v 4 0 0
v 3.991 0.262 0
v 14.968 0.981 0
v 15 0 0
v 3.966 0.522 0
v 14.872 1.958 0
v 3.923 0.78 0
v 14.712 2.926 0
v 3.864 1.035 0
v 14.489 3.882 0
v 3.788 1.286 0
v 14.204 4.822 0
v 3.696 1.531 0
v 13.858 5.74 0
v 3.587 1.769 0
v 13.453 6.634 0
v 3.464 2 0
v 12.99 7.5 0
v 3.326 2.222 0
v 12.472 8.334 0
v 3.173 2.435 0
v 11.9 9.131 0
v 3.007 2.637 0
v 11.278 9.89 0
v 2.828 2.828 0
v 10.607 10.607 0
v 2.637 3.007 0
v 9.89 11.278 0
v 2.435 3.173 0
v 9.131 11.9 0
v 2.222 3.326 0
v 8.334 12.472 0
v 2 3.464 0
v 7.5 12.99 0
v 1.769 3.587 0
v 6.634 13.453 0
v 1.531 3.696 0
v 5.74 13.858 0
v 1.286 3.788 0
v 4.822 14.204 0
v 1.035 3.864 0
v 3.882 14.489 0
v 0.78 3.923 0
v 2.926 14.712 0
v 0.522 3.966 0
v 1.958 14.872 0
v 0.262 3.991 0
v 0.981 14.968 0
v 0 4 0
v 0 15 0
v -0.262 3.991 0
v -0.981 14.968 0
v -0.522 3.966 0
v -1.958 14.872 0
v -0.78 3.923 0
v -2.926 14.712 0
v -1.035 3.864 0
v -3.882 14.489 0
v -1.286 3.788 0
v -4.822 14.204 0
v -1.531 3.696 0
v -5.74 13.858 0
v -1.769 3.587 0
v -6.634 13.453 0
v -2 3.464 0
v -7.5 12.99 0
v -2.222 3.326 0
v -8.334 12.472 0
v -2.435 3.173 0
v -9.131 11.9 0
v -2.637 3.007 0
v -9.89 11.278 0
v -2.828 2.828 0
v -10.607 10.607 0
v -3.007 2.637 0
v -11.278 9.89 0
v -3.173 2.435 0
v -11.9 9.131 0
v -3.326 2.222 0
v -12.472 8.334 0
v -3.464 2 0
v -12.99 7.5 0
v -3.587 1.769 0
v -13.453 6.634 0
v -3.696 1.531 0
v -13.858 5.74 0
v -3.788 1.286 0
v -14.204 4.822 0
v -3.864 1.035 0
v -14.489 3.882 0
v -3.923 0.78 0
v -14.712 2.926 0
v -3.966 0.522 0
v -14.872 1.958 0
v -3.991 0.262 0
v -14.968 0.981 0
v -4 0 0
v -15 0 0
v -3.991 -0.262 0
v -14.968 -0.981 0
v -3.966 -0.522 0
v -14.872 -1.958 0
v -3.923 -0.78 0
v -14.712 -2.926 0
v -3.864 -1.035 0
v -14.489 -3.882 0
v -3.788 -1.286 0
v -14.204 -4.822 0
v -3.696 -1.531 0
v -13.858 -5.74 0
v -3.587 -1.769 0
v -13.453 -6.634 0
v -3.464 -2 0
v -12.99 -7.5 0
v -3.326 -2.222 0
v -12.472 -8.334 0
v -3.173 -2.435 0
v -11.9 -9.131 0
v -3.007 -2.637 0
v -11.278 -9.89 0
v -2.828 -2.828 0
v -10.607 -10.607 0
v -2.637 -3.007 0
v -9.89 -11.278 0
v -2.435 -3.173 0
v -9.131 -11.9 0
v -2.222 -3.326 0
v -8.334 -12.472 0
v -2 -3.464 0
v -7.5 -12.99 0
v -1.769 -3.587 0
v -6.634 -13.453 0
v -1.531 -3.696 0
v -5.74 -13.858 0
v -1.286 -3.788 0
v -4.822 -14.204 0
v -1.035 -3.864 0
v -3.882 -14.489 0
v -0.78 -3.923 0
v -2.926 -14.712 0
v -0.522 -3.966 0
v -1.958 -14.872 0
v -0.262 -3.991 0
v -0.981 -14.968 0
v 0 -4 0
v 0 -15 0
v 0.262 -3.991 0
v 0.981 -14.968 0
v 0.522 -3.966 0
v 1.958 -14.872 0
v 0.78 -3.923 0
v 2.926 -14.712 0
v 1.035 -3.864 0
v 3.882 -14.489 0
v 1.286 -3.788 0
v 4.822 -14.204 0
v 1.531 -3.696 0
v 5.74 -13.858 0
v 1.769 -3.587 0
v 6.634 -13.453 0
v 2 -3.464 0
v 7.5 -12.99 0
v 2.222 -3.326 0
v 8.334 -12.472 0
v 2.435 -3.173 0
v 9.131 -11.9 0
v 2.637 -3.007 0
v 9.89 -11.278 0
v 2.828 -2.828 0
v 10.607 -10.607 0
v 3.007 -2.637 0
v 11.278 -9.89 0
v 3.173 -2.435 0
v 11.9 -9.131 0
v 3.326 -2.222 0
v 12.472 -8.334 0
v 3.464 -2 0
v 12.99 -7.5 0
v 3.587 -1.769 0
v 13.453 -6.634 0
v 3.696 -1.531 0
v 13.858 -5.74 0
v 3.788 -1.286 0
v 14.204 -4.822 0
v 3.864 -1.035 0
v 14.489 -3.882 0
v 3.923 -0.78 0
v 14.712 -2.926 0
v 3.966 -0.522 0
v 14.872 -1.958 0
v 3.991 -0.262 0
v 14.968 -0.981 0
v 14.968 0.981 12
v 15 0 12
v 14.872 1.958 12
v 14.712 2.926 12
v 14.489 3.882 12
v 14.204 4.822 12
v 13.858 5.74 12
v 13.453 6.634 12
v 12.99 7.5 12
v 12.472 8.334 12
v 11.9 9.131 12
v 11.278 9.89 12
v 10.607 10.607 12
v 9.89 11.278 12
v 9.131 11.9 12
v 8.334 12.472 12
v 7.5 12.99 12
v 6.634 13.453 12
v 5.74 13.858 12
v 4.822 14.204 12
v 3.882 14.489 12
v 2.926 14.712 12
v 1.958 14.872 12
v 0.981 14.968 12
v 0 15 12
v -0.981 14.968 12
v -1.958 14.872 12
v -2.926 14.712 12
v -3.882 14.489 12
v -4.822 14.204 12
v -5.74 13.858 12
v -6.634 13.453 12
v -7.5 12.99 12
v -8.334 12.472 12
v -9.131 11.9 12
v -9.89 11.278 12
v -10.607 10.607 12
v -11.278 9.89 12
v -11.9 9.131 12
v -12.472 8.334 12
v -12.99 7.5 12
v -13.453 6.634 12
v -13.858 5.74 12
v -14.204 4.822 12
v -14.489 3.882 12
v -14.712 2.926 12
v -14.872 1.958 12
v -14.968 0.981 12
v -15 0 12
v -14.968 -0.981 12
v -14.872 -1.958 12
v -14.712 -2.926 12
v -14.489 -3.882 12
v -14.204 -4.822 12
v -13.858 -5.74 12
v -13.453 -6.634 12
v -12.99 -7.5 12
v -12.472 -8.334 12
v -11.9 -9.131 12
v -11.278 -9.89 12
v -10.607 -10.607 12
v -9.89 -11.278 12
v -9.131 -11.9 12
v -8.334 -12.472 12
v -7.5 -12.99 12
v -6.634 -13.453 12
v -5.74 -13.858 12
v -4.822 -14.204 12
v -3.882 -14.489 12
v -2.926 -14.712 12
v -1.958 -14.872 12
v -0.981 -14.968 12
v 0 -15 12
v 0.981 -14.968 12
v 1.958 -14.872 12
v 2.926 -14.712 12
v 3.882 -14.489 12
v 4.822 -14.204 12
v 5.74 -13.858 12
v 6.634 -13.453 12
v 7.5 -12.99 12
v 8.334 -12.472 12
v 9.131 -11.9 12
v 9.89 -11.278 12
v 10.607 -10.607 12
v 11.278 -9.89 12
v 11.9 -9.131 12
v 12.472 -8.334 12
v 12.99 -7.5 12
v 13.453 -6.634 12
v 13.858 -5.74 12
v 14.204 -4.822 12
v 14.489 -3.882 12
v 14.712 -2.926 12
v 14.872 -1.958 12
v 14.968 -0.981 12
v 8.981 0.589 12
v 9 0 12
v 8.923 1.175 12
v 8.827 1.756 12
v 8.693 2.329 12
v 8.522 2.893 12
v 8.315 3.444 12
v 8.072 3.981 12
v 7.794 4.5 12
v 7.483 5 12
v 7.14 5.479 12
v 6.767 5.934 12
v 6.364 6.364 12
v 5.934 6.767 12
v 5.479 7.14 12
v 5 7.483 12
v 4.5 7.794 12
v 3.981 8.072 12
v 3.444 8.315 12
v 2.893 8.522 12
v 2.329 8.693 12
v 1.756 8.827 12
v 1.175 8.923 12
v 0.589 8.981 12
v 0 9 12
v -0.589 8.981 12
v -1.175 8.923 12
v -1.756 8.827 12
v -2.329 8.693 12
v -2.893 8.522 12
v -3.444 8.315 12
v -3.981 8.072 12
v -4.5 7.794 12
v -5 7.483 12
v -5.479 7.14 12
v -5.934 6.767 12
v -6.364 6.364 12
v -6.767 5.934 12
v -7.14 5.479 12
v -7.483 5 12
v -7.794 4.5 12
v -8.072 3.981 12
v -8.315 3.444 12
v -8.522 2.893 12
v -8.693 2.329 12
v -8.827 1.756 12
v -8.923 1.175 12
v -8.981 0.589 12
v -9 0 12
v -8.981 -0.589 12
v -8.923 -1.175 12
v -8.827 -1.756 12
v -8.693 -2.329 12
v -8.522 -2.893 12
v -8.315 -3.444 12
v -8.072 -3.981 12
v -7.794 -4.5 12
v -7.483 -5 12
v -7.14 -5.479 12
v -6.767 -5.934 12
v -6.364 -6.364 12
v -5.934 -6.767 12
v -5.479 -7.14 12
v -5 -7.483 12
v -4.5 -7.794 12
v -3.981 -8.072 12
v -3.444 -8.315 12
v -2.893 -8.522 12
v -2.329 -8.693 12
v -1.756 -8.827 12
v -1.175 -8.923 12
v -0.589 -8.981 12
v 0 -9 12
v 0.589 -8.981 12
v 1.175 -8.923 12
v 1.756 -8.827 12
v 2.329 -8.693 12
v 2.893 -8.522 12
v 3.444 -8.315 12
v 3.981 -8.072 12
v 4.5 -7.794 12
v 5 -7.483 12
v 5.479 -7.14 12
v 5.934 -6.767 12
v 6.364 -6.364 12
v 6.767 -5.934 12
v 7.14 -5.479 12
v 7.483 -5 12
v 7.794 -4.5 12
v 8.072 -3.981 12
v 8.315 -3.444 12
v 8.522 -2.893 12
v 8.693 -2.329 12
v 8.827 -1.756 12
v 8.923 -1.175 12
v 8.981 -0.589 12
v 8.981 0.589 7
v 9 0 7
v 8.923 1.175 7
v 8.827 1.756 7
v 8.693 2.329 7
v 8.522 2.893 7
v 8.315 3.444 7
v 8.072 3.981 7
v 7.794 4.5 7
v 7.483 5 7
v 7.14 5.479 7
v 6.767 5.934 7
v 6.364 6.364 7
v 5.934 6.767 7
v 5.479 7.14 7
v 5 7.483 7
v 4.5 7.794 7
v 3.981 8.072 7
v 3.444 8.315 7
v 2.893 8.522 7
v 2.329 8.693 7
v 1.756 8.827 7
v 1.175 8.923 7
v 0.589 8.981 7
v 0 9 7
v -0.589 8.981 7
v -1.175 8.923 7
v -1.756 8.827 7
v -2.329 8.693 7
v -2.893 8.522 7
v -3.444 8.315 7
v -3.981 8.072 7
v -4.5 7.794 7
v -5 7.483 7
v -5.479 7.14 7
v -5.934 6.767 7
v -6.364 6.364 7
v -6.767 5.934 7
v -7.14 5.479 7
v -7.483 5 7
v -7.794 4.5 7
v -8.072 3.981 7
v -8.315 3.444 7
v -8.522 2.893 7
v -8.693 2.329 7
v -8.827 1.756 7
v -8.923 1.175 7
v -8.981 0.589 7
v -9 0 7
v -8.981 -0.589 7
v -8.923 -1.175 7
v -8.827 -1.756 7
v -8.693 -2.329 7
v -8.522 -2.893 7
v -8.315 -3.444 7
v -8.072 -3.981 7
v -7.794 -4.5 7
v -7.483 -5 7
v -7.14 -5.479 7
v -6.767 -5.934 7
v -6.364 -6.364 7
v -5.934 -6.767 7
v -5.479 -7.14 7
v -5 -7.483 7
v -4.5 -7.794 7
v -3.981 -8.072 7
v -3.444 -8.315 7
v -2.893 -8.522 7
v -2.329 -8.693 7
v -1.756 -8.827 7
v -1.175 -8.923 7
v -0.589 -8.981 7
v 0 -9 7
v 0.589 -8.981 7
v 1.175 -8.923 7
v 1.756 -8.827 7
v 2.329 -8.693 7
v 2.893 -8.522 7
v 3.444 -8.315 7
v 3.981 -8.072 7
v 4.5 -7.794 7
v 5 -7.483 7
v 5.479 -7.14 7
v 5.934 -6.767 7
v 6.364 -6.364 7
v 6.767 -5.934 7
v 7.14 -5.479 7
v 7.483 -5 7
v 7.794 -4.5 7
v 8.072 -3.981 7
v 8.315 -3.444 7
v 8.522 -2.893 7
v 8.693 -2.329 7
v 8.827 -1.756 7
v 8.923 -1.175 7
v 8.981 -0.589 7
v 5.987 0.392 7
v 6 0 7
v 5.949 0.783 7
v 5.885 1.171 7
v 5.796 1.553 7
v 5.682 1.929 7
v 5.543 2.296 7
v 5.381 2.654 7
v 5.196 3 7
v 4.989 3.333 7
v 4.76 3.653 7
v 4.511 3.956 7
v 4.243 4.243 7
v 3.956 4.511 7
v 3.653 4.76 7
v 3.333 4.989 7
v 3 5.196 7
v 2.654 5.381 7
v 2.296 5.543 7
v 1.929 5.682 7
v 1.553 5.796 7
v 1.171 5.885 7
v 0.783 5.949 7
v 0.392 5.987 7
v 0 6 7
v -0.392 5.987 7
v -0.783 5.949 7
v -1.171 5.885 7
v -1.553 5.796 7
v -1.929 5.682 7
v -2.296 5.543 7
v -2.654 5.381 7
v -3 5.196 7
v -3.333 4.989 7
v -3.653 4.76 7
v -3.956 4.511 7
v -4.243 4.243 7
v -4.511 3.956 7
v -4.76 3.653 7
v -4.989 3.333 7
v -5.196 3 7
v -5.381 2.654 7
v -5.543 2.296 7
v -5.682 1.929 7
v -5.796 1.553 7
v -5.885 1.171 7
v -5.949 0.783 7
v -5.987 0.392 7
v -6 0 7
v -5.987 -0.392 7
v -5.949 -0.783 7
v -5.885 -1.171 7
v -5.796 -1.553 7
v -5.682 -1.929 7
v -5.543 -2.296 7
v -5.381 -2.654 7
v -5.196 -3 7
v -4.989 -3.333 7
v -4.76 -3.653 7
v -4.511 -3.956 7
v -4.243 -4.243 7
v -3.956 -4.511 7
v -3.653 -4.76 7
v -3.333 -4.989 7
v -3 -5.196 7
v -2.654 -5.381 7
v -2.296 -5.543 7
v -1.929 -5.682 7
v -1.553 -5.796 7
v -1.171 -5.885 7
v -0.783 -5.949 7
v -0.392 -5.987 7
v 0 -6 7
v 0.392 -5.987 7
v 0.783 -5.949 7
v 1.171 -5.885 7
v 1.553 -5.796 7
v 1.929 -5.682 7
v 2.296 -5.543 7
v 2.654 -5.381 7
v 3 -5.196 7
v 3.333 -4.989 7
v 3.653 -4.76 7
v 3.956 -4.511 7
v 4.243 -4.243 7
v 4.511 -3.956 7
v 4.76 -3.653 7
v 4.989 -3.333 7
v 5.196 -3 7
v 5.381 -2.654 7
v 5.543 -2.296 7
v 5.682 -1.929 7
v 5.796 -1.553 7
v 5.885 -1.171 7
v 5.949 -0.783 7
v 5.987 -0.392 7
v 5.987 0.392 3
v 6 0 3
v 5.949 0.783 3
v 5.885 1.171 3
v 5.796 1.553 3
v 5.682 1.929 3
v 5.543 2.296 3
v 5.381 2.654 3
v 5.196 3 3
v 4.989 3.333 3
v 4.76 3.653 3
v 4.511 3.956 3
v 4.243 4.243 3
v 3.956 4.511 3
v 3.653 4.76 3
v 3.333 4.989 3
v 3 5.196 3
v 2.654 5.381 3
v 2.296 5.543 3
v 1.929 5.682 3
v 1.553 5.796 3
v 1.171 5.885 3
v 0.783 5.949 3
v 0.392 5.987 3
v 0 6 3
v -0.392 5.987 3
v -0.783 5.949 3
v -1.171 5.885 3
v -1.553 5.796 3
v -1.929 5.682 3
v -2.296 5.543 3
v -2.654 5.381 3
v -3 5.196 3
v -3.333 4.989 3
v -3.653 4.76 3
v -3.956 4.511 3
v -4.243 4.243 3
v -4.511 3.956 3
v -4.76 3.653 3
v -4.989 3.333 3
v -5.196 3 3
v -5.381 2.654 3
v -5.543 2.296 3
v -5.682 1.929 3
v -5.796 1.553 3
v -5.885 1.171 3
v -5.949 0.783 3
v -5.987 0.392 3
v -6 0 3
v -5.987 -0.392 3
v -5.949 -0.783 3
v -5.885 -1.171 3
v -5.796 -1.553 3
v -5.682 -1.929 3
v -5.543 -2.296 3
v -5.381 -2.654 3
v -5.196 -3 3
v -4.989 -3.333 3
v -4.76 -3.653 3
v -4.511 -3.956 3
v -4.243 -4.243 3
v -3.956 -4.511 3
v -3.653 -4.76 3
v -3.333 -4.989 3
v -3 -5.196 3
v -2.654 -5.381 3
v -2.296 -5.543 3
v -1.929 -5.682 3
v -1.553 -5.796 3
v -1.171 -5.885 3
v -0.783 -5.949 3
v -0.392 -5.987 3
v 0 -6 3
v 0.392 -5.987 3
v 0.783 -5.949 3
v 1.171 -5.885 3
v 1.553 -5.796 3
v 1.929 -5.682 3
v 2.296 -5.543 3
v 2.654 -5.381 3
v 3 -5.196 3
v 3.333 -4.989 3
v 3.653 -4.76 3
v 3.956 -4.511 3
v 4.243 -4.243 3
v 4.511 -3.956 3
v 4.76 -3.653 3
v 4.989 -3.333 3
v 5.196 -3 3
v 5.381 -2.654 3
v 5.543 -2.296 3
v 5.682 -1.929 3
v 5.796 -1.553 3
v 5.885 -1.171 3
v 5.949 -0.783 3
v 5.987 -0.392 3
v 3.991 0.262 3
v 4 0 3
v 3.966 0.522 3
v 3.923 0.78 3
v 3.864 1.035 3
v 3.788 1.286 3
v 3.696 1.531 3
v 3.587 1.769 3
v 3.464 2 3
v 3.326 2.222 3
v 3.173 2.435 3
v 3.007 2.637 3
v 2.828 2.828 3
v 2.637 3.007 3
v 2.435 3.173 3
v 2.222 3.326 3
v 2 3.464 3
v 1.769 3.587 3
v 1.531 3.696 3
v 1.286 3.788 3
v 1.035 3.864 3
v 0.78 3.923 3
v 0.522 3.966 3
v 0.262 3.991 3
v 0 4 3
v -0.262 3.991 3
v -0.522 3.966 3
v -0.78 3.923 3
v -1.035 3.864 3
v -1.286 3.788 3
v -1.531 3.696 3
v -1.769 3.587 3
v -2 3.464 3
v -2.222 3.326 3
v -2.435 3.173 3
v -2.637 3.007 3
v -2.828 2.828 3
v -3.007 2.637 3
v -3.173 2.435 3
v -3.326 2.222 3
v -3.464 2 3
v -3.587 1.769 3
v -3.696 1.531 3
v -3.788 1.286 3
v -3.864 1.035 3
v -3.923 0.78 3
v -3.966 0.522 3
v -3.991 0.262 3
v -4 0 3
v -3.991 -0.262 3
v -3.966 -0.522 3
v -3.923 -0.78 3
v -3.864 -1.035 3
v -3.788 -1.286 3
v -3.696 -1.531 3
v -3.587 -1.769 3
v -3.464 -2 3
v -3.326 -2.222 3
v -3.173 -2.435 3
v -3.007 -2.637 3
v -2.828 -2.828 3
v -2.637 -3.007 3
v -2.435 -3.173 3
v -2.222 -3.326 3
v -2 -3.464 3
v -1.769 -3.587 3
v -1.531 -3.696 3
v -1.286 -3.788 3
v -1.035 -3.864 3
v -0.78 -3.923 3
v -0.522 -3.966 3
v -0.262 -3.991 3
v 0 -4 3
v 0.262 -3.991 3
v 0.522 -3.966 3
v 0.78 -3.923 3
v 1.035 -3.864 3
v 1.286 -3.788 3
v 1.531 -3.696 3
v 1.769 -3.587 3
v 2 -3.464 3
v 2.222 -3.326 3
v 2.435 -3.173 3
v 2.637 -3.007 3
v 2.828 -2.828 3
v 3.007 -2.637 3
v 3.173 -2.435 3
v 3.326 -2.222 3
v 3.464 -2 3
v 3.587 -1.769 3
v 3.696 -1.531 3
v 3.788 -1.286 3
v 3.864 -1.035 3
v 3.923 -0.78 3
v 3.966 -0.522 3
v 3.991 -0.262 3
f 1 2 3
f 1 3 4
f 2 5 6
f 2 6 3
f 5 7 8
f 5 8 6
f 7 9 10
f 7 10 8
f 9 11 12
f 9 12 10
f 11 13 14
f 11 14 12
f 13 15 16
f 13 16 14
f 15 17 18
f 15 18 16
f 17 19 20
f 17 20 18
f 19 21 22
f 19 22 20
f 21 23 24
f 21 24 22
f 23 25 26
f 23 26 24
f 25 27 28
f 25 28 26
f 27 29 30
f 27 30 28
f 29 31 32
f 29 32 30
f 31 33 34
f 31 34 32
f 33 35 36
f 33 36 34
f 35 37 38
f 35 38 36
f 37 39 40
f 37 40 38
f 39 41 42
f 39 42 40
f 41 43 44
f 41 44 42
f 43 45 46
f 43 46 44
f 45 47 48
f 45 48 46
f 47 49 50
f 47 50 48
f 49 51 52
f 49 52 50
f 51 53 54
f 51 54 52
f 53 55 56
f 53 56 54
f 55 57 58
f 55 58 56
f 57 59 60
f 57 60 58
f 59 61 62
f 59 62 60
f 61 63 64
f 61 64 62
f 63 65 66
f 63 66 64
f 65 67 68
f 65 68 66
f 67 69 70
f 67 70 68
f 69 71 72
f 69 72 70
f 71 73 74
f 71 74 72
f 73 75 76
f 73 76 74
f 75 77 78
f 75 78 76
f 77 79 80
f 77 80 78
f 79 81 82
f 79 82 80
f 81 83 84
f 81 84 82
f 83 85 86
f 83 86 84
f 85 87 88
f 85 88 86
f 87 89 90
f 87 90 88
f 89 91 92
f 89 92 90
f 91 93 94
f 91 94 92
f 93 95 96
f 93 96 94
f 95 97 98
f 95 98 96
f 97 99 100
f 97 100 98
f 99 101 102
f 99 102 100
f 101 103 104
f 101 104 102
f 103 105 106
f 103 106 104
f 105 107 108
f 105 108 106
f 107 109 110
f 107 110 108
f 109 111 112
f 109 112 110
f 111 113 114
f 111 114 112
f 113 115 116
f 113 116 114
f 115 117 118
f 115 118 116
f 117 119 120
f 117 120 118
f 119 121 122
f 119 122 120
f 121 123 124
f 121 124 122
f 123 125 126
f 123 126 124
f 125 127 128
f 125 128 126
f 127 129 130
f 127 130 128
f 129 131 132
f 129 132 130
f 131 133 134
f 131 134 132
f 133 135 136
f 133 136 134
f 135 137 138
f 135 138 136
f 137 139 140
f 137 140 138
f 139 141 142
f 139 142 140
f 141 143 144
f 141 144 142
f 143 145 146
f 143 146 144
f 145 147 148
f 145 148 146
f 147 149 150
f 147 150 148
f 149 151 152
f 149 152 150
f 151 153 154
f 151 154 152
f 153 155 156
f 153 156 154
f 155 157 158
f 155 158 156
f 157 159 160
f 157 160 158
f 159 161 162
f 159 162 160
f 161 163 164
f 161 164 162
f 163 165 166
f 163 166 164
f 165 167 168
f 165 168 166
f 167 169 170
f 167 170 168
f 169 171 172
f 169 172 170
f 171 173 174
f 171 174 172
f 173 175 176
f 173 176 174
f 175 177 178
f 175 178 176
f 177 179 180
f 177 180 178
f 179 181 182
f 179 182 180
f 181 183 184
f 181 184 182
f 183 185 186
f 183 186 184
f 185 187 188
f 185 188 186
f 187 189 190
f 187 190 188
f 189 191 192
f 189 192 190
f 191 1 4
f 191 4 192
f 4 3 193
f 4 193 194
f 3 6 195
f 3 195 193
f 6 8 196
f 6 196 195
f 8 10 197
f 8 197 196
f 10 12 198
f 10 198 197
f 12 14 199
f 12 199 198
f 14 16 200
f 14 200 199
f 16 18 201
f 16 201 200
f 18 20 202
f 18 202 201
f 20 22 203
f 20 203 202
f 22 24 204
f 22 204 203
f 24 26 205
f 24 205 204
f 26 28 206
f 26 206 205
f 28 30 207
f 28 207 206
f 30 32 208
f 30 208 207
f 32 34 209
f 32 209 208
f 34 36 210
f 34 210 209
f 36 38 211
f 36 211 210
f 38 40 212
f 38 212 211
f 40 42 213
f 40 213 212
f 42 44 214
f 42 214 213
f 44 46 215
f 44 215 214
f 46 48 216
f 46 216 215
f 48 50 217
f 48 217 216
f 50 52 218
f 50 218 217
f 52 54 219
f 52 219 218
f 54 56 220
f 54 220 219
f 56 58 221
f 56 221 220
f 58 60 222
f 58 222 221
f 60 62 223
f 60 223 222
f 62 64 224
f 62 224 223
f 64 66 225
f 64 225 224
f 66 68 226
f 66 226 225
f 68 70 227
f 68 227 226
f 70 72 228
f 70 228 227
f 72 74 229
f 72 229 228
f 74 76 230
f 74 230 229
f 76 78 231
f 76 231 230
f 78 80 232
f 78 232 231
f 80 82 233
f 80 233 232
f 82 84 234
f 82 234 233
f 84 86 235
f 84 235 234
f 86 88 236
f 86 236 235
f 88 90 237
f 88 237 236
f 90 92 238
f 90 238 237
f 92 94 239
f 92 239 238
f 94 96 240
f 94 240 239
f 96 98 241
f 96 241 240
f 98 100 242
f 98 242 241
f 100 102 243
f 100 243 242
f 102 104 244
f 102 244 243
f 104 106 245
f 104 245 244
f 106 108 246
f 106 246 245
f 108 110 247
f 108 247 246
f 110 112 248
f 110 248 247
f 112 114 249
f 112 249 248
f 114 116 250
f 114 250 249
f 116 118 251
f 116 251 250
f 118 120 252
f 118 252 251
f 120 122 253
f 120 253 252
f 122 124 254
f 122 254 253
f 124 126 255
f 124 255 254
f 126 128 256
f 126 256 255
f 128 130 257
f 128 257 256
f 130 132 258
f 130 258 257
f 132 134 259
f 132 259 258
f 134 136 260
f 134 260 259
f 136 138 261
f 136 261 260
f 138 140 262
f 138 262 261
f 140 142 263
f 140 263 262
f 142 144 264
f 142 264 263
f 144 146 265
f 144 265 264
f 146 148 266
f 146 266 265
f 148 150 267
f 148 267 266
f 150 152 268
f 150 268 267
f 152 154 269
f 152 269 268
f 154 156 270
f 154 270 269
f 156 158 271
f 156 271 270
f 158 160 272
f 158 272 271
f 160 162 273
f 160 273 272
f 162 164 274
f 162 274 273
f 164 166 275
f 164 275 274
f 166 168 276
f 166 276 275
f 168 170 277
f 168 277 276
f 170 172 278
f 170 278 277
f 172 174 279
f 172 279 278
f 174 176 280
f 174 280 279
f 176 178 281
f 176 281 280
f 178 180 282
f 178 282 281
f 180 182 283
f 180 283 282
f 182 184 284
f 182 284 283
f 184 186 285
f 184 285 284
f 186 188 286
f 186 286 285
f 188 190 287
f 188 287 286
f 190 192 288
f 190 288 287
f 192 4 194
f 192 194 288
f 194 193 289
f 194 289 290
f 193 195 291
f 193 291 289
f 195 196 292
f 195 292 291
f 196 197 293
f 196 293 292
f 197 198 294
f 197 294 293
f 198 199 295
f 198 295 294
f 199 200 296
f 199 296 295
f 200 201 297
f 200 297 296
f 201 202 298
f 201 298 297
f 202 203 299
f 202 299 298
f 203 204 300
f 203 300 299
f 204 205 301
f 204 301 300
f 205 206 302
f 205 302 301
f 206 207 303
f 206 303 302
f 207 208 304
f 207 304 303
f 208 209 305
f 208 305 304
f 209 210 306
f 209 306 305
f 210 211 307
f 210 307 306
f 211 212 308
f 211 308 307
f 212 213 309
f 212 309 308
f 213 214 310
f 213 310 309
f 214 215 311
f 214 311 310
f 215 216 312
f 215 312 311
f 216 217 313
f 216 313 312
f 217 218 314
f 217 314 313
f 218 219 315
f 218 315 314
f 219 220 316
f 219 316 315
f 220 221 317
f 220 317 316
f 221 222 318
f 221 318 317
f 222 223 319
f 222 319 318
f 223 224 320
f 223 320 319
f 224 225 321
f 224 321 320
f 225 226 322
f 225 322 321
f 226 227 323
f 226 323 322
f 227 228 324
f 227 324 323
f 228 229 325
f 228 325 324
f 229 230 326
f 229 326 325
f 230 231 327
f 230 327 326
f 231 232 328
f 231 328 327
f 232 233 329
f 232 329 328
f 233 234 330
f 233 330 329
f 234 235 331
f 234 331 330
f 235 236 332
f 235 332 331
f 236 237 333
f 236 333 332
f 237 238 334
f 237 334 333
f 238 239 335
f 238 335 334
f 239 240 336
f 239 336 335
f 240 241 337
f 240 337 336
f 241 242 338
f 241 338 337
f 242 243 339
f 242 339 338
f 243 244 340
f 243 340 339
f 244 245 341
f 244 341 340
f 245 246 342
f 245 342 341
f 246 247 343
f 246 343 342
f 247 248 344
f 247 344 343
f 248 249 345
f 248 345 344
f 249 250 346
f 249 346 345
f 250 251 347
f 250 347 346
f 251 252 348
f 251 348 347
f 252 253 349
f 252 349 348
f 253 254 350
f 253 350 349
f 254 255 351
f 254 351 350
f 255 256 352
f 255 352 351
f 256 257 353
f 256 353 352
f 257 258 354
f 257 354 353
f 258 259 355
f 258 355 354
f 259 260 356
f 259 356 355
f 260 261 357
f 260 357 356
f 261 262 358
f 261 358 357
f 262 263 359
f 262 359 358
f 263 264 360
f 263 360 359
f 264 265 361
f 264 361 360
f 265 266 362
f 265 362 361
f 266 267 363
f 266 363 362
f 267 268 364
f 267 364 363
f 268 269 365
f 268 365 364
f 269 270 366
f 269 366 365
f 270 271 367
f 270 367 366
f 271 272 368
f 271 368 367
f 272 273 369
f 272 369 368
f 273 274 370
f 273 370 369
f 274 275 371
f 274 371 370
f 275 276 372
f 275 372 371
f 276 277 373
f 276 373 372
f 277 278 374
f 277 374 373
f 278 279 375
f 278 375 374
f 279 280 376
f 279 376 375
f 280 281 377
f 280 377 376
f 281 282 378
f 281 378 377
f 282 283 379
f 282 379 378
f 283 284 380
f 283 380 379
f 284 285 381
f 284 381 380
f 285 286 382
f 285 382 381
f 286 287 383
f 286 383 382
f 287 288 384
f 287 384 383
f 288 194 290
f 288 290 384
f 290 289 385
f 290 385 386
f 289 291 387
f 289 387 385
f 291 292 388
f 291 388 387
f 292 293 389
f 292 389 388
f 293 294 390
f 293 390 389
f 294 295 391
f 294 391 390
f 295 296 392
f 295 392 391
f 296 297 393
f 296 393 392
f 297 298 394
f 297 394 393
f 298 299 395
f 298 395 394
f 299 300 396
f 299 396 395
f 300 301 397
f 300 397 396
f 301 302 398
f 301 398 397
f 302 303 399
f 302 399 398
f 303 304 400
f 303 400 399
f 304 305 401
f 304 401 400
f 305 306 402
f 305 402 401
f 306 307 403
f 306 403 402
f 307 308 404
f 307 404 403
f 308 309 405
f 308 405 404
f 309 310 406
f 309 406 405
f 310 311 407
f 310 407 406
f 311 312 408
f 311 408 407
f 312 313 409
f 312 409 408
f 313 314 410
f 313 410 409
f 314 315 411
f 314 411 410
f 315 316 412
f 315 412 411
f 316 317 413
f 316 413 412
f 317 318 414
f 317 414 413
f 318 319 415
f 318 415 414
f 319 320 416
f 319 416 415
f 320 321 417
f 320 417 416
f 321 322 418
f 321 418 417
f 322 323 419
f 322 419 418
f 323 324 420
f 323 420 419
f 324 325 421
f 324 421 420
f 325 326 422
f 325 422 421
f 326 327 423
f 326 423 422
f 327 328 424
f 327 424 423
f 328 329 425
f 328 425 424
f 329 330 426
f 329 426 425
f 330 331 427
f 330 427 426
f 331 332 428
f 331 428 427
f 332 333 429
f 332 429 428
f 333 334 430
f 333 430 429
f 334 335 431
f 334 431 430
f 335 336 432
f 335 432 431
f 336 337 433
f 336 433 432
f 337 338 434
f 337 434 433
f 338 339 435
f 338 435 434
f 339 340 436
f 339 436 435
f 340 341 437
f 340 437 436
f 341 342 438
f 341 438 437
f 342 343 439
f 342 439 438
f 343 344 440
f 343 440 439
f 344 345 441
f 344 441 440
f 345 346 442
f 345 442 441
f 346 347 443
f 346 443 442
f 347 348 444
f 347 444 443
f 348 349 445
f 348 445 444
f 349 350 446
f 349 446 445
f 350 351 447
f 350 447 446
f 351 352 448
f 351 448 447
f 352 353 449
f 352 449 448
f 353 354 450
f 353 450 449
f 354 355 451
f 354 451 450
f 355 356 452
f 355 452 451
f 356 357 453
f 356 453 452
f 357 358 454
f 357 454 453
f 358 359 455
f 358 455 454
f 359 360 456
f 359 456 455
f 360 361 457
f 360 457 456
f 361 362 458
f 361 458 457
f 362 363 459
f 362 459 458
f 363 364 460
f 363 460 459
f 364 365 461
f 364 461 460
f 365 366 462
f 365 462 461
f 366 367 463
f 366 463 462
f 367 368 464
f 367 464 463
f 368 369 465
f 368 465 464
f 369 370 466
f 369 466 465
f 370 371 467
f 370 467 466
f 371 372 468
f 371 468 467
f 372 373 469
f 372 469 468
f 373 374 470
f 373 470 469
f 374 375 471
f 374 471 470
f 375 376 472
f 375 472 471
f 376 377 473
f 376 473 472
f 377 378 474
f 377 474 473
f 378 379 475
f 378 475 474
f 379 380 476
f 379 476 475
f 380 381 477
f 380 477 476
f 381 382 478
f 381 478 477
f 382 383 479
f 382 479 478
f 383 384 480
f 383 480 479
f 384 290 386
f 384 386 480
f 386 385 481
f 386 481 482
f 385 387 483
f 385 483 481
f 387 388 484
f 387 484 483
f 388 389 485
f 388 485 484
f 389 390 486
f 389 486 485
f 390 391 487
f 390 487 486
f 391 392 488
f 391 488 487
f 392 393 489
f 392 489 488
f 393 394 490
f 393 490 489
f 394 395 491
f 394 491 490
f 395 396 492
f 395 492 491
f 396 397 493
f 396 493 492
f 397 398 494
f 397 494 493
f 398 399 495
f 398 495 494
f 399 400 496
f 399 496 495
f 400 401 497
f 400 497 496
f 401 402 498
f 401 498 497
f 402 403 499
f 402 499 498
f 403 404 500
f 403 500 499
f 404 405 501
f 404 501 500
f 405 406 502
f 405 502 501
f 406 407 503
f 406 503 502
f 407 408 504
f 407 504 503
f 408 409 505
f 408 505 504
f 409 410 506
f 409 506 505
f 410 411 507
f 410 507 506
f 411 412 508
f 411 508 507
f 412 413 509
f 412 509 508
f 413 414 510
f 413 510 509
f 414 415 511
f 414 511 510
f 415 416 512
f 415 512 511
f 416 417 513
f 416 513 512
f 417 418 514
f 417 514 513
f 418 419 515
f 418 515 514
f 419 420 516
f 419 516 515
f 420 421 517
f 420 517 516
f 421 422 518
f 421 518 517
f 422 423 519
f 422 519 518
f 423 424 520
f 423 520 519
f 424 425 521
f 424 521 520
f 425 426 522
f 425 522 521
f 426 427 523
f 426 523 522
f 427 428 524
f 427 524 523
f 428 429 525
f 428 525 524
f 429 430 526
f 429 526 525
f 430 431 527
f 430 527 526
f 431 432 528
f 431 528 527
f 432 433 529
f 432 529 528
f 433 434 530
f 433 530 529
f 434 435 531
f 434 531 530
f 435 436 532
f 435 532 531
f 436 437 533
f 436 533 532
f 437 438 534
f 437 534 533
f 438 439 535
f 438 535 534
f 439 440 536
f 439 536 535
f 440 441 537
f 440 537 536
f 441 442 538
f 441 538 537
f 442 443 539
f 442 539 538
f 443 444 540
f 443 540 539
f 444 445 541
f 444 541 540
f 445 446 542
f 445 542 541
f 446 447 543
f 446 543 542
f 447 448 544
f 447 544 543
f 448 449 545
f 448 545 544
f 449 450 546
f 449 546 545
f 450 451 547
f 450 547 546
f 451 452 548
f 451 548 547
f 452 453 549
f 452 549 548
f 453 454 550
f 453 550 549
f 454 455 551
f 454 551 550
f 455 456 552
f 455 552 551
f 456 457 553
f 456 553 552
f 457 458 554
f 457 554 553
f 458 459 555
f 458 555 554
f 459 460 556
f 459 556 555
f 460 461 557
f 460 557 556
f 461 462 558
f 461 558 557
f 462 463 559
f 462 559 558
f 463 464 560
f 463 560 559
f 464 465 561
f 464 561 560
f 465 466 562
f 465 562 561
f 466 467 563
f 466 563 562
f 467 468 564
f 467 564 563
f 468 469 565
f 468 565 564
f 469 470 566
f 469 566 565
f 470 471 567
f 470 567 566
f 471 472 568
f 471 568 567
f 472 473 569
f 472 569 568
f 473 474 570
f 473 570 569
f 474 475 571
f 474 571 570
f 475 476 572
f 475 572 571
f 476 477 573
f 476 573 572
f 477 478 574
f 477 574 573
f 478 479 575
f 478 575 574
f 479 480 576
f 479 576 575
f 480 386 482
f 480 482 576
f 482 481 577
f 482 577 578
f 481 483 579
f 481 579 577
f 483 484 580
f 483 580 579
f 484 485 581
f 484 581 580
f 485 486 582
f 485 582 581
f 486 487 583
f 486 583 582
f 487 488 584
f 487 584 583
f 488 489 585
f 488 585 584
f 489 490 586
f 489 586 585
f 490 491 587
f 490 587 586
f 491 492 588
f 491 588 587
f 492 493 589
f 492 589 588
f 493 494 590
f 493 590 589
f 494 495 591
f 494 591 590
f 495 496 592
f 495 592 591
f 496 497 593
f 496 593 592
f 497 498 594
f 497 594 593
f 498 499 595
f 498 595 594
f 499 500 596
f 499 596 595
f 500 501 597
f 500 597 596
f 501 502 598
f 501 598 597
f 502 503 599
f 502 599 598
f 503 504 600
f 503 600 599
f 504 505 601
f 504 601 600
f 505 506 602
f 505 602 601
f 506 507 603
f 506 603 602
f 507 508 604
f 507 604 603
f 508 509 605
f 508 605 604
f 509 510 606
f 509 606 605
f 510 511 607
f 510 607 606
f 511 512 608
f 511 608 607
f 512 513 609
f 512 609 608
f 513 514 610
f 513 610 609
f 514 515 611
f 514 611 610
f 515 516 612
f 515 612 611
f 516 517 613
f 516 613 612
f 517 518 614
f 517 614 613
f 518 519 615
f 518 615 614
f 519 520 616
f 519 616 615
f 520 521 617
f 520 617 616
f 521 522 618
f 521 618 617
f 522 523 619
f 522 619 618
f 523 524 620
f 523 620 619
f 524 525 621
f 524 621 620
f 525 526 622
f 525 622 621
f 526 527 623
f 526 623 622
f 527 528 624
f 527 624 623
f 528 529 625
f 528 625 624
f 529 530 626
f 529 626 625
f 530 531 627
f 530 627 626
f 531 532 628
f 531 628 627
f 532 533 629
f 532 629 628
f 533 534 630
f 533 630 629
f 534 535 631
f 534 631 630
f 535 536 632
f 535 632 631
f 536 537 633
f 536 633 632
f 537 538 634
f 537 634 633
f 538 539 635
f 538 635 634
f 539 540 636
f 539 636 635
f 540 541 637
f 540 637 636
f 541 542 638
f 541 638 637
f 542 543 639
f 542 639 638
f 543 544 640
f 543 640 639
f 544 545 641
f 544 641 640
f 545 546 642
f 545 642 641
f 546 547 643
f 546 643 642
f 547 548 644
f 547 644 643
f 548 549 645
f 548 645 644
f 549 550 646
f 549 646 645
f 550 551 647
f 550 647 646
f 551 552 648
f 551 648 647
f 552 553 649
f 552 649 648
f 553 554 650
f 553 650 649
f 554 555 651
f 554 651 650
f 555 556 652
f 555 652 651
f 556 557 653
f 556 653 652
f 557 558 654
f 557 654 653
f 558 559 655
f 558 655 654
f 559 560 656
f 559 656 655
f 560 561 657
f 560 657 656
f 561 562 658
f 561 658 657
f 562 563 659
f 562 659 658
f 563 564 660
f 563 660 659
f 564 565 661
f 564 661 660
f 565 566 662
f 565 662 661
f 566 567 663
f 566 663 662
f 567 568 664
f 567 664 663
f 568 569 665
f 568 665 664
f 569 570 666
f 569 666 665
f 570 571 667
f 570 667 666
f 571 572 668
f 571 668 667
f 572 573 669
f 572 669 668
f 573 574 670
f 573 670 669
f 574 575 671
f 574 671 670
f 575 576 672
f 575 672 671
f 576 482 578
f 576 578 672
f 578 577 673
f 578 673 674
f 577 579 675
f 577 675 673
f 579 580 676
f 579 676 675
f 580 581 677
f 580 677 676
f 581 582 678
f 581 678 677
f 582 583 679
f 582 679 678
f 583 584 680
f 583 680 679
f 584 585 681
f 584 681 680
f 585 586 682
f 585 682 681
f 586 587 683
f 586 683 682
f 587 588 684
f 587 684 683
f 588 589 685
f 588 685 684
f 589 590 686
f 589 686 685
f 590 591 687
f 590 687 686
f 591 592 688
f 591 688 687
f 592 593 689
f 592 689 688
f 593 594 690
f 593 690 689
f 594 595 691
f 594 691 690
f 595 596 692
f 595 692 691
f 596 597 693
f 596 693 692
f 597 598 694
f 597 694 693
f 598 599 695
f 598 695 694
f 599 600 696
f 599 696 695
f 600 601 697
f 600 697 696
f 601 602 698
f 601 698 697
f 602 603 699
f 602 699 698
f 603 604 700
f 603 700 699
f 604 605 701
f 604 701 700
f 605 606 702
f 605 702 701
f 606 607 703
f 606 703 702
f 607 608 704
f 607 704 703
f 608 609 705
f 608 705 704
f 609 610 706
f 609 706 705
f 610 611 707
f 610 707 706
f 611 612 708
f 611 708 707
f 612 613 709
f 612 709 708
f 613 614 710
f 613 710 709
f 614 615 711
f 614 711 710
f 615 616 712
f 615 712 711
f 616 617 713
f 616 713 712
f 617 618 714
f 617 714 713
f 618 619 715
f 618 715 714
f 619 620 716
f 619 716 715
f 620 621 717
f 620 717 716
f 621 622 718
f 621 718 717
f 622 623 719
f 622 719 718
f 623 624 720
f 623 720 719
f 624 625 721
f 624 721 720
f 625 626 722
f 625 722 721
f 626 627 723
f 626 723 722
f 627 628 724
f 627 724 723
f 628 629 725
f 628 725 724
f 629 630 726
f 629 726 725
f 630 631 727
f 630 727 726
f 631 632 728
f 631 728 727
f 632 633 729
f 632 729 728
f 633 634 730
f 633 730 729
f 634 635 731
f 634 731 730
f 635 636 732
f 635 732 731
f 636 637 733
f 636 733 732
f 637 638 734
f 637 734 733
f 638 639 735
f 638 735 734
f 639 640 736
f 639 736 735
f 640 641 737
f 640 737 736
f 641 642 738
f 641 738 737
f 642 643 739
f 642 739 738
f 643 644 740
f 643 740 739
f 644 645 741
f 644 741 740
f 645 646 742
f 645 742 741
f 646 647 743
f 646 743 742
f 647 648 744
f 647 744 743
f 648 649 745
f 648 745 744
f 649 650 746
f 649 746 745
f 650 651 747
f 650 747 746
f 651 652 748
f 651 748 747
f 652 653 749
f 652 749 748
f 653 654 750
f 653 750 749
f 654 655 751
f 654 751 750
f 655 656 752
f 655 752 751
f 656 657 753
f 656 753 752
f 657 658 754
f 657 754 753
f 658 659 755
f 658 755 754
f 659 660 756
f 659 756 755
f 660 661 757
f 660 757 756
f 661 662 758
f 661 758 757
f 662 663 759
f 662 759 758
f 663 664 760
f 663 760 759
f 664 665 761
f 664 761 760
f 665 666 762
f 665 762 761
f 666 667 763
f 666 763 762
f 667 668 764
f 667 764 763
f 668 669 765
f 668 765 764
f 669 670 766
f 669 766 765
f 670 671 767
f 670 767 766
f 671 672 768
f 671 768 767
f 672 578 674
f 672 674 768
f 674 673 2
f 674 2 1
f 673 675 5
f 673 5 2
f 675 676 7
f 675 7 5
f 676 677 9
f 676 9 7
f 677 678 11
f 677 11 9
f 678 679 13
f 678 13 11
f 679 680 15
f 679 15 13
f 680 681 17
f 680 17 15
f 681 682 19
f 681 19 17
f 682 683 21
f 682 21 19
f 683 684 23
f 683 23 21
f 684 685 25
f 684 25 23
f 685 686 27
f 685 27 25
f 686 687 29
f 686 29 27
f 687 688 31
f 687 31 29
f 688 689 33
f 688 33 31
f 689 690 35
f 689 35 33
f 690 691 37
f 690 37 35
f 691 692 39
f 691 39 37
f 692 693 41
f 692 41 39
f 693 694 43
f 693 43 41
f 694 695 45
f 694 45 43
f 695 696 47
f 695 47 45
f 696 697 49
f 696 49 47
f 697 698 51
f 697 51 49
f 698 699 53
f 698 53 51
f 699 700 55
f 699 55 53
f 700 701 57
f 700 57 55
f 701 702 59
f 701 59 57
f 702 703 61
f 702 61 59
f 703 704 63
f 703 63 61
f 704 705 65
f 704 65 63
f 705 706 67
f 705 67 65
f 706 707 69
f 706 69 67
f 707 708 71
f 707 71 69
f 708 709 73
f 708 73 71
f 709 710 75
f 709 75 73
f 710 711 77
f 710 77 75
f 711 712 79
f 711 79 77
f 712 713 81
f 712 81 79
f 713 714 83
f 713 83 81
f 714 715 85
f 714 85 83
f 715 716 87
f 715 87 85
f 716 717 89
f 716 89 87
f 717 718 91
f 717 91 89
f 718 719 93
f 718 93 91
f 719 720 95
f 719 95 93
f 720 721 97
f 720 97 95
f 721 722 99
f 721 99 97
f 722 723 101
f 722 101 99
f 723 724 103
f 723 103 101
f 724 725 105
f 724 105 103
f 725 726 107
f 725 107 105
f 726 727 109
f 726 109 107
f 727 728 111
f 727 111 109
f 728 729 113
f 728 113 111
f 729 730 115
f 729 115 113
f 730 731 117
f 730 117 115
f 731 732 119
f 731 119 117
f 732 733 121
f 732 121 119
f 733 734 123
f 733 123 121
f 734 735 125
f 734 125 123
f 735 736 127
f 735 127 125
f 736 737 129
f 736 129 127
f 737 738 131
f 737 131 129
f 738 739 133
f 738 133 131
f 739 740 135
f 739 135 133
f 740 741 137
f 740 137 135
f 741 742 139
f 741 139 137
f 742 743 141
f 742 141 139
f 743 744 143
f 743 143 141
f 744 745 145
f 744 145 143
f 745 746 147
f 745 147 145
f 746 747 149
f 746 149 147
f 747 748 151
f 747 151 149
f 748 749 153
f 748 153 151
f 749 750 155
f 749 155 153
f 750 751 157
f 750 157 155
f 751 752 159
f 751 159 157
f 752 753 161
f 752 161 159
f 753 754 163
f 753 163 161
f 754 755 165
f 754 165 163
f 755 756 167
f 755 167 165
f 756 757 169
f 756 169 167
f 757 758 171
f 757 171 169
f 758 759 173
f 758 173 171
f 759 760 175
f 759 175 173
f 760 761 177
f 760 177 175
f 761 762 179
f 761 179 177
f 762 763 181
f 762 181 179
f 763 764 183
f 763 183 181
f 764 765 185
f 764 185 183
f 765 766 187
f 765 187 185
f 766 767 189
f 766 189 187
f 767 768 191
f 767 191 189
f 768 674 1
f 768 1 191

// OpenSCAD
// Original MechIntel educational model. CC0-1.0. Units: mm.
// Not a standardized or load-rated component.
$fn=96;
// Section points: [radius, height], mm. Edit to change the profile.
section=[[4, 0], [15, 0], [15, 12], [9, 12], [9, 7], [6, 7], [6, 3], [4, 3]];
rotate_extrude($fn=96) polygon(points=section);
